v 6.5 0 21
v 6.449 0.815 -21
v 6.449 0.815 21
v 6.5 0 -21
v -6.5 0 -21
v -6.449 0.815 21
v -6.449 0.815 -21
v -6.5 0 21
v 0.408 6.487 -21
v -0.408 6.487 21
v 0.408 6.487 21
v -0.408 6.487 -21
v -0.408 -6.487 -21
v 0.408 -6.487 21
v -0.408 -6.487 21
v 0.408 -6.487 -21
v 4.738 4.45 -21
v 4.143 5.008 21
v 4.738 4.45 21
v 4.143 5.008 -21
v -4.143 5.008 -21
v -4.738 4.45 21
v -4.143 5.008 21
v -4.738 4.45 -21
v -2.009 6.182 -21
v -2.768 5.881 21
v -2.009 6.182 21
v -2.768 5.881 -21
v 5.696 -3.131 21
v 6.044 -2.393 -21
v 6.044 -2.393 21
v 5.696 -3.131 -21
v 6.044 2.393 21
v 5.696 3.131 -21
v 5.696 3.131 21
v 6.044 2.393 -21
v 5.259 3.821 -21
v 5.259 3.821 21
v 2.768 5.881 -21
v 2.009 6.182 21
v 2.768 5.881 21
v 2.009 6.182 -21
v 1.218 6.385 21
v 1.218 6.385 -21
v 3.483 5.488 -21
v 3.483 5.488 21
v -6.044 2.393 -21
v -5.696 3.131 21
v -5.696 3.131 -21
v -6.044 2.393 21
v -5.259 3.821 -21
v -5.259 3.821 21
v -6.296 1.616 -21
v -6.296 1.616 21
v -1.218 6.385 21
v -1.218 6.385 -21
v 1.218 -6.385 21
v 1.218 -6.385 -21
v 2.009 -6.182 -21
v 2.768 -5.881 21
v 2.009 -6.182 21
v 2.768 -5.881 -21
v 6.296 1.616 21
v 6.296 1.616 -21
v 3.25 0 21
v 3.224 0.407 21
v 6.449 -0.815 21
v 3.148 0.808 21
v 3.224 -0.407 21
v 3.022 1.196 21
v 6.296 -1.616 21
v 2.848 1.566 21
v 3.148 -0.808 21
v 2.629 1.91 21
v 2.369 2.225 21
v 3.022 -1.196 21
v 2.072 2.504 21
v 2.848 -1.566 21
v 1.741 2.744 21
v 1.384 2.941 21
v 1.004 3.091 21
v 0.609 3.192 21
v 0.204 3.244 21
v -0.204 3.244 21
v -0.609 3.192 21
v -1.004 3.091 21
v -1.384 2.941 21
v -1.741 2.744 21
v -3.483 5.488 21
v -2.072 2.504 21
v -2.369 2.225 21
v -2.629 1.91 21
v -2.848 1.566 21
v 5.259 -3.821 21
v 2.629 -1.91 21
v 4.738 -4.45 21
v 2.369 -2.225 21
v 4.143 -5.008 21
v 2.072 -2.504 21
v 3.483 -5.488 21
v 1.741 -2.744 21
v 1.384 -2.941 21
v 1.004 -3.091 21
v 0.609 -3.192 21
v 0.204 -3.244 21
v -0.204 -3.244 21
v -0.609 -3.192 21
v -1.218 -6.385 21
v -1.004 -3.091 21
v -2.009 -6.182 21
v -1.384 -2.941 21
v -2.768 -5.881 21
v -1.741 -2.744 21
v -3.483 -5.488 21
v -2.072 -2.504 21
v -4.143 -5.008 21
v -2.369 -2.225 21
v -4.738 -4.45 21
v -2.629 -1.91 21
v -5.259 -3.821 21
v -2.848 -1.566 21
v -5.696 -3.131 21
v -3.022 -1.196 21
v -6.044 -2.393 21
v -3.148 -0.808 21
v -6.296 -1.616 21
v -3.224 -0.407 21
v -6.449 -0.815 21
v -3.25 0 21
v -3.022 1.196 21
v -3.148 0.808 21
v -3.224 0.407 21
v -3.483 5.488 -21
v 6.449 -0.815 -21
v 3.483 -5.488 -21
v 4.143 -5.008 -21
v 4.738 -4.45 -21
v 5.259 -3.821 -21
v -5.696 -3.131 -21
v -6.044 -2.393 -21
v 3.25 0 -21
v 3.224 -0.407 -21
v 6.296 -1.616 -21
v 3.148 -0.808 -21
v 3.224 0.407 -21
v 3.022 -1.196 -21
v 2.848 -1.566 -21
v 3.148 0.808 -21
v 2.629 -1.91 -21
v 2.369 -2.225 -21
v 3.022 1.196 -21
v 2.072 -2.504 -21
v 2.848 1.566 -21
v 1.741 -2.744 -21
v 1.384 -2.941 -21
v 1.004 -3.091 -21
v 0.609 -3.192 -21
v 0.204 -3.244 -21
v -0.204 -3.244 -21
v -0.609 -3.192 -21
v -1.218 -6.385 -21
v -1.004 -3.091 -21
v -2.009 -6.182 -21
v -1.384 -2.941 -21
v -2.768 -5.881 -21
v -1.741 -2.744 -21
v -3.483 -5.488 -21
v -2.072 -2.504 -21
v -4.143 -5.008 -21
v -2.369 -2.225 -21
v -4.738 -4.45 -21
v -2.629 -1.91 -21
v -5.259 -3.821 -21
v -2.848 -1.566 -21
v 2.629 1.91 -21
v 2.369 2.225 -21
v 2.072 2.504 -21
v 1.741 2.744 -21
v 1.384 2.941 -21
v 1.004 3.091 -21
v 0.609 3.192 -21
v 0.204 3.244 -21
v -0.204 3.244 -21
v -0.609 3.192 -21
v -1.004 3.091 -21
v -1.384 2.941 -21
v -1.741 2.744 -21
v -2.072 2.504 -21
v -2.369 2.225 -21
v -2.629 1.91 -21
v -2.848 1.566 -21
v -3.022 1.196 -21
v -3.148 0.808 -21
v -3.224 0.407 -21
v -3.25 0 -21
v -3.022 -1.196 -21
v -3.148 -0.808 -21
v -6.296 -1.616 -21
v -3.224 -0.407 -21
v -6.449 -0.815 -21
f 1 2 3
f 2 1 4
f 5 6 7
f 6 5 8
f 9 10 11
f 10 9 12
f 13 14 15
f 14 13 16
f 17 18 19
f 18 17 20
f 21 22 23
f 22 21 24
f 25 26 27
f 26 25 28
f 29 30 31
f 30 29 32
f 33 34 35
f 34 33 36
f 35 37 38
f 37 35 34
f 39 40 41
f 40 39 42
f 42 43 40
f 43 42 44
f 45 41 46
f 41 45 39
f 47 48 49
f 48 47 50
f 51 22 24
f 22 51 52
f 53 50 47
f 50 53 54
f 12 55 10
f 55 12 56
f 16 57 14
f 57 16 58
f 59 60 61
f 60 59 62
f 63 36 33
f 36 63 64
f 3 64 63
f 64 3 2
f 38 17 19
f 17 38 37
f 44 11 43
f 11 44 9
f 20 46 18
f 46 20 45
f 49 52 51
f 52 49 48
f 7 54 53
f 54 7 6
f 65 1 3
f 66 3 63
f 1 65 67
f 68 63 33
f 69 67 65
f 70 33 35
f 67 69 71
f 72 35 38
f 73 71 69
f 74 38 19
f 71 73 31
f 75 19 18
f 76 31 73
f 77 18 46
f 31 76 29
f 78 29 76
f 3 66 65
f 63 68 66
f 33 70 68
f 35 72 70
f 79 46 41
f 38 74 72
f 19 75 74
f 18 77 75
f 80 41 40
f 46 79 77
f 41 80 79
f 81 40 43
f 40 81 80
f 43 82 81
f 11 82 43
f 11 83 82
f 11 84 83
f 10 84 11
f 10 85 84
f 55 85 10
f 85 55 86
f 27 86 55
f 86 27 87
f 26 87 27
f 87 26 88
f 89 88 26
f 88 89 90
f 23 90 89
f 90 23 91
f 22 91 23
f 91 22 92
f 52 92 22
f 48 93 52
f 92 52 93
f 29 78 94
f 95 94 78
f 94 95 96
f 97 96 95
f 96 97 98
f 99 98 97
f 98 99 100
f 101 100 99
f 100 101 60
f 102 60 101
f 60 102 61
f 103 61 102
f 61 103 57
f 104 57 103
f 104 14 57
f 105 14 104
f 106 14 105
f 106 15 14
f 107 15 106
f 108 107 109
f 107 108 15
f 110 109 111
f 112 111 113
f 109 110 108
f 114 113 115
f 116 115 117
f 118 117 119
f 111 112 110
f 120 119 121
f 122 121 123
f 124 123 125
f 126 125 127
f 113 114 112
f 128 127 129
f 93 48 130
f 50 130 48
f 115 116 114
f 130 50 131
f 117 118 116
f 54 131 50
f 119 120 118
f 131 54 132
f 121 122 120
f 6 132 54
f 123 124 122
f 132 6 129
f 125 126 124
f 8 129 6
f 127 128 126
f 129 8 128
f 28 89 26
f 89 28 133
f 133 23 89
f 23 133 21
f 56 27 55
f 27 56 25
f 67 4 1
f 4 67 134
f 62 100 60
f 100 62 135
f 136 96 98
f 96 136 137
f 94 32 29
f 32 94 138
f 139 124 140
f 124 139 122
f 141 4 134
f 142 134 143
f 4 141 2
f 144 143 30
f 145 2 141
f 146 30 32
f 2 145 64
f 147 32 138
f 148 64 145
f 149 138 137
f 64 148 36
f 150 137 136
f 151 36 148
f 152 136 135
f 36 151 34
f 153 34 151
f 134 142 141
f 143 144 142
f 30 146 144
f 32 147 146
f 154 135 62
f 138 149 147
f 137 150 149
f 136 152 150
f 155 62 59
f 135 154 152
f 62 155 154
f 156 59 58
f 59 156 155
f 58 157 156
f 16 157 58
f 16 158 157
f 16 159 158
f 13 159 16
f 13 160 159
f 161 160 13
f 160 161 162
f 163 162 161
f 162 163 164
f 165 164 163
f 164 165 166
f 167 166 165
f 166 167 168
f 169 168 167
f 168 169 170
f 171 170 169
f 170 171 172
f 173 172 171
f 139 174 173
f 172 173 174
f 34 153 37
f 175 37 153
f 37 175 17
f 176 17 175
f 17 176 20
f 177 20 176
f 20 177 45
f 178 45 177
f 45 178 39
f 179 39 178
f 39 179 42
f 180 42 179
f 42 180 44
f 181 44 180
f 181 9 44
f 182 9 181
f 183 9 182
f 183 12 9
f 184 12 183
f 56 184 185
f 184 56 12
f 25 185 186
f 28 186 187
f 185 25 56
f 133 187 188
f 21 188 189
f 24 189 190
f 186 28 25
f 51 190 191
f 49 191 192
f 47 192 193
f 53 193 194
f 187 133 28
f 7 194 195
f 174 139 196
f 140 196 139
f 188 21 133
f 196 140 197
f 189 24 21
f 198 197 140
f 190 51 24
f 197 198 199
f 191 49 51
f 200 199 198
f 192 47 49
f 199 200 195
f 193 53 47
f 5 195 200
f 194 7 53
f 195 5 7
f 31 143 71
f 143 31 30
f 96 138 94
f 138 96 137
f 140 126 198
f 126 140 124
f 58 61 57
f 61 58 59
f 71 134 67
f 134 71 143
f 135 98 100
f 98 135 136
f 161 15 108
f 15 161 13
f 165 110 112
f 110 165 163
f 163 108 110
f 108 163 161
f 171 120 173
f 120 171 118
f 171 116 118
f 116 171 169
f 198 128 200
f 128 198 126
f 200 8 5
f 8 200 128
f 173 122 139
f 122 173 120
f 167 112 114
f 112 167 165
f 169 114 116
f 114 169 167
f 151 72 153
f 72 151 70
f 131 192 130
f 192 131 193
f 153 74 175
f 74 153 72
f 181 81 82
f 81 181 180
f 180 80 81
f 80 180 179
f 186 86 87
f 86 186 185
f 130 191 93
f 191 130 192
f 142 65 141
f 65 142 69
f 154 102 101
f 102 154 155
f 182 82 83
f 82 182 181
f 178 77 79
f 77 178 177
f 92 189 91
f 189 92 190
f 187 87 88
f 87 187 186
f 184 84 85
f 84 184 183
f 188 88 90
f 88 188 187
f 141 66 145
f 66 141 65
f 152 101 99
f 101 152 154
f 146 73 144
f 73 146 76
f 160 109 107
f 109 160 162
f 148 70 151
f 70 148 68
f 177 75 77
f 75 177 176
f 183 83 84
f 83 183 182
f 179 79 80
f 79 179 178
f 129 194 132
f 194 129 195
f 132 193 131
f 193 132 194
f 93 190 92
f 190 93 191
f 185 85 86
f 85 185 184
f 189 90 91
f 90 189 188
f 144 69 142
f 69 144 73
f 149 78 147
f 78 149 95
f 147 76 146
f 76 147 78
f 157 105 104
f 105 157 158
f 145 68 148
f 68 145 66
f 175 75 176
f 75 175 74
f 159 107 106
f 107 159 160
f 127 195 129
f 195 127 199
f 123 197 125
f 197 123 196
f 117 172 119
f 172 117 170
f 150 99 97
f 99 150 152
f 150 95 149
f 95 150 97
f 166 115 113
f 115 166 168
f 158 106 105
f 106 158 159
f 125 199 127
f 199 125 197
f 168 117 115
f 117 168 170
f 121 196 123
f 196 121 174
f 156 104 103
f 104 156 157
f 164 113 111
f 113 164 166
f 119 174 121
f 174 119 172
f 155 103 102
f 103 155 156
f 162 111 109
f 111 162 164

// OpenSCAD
$fn = 50;


difference() {
	union() {
		translate(v = [0, 0, -21.0000000000]) {
			cylinder(h = 42, r = 6.5000000000);
		}
	}
	union() {
		translate(v = [0, 0, -100.0000000000]) {
			cylinder(h = 200, r = 3.2500000000);
		}
	}
}
